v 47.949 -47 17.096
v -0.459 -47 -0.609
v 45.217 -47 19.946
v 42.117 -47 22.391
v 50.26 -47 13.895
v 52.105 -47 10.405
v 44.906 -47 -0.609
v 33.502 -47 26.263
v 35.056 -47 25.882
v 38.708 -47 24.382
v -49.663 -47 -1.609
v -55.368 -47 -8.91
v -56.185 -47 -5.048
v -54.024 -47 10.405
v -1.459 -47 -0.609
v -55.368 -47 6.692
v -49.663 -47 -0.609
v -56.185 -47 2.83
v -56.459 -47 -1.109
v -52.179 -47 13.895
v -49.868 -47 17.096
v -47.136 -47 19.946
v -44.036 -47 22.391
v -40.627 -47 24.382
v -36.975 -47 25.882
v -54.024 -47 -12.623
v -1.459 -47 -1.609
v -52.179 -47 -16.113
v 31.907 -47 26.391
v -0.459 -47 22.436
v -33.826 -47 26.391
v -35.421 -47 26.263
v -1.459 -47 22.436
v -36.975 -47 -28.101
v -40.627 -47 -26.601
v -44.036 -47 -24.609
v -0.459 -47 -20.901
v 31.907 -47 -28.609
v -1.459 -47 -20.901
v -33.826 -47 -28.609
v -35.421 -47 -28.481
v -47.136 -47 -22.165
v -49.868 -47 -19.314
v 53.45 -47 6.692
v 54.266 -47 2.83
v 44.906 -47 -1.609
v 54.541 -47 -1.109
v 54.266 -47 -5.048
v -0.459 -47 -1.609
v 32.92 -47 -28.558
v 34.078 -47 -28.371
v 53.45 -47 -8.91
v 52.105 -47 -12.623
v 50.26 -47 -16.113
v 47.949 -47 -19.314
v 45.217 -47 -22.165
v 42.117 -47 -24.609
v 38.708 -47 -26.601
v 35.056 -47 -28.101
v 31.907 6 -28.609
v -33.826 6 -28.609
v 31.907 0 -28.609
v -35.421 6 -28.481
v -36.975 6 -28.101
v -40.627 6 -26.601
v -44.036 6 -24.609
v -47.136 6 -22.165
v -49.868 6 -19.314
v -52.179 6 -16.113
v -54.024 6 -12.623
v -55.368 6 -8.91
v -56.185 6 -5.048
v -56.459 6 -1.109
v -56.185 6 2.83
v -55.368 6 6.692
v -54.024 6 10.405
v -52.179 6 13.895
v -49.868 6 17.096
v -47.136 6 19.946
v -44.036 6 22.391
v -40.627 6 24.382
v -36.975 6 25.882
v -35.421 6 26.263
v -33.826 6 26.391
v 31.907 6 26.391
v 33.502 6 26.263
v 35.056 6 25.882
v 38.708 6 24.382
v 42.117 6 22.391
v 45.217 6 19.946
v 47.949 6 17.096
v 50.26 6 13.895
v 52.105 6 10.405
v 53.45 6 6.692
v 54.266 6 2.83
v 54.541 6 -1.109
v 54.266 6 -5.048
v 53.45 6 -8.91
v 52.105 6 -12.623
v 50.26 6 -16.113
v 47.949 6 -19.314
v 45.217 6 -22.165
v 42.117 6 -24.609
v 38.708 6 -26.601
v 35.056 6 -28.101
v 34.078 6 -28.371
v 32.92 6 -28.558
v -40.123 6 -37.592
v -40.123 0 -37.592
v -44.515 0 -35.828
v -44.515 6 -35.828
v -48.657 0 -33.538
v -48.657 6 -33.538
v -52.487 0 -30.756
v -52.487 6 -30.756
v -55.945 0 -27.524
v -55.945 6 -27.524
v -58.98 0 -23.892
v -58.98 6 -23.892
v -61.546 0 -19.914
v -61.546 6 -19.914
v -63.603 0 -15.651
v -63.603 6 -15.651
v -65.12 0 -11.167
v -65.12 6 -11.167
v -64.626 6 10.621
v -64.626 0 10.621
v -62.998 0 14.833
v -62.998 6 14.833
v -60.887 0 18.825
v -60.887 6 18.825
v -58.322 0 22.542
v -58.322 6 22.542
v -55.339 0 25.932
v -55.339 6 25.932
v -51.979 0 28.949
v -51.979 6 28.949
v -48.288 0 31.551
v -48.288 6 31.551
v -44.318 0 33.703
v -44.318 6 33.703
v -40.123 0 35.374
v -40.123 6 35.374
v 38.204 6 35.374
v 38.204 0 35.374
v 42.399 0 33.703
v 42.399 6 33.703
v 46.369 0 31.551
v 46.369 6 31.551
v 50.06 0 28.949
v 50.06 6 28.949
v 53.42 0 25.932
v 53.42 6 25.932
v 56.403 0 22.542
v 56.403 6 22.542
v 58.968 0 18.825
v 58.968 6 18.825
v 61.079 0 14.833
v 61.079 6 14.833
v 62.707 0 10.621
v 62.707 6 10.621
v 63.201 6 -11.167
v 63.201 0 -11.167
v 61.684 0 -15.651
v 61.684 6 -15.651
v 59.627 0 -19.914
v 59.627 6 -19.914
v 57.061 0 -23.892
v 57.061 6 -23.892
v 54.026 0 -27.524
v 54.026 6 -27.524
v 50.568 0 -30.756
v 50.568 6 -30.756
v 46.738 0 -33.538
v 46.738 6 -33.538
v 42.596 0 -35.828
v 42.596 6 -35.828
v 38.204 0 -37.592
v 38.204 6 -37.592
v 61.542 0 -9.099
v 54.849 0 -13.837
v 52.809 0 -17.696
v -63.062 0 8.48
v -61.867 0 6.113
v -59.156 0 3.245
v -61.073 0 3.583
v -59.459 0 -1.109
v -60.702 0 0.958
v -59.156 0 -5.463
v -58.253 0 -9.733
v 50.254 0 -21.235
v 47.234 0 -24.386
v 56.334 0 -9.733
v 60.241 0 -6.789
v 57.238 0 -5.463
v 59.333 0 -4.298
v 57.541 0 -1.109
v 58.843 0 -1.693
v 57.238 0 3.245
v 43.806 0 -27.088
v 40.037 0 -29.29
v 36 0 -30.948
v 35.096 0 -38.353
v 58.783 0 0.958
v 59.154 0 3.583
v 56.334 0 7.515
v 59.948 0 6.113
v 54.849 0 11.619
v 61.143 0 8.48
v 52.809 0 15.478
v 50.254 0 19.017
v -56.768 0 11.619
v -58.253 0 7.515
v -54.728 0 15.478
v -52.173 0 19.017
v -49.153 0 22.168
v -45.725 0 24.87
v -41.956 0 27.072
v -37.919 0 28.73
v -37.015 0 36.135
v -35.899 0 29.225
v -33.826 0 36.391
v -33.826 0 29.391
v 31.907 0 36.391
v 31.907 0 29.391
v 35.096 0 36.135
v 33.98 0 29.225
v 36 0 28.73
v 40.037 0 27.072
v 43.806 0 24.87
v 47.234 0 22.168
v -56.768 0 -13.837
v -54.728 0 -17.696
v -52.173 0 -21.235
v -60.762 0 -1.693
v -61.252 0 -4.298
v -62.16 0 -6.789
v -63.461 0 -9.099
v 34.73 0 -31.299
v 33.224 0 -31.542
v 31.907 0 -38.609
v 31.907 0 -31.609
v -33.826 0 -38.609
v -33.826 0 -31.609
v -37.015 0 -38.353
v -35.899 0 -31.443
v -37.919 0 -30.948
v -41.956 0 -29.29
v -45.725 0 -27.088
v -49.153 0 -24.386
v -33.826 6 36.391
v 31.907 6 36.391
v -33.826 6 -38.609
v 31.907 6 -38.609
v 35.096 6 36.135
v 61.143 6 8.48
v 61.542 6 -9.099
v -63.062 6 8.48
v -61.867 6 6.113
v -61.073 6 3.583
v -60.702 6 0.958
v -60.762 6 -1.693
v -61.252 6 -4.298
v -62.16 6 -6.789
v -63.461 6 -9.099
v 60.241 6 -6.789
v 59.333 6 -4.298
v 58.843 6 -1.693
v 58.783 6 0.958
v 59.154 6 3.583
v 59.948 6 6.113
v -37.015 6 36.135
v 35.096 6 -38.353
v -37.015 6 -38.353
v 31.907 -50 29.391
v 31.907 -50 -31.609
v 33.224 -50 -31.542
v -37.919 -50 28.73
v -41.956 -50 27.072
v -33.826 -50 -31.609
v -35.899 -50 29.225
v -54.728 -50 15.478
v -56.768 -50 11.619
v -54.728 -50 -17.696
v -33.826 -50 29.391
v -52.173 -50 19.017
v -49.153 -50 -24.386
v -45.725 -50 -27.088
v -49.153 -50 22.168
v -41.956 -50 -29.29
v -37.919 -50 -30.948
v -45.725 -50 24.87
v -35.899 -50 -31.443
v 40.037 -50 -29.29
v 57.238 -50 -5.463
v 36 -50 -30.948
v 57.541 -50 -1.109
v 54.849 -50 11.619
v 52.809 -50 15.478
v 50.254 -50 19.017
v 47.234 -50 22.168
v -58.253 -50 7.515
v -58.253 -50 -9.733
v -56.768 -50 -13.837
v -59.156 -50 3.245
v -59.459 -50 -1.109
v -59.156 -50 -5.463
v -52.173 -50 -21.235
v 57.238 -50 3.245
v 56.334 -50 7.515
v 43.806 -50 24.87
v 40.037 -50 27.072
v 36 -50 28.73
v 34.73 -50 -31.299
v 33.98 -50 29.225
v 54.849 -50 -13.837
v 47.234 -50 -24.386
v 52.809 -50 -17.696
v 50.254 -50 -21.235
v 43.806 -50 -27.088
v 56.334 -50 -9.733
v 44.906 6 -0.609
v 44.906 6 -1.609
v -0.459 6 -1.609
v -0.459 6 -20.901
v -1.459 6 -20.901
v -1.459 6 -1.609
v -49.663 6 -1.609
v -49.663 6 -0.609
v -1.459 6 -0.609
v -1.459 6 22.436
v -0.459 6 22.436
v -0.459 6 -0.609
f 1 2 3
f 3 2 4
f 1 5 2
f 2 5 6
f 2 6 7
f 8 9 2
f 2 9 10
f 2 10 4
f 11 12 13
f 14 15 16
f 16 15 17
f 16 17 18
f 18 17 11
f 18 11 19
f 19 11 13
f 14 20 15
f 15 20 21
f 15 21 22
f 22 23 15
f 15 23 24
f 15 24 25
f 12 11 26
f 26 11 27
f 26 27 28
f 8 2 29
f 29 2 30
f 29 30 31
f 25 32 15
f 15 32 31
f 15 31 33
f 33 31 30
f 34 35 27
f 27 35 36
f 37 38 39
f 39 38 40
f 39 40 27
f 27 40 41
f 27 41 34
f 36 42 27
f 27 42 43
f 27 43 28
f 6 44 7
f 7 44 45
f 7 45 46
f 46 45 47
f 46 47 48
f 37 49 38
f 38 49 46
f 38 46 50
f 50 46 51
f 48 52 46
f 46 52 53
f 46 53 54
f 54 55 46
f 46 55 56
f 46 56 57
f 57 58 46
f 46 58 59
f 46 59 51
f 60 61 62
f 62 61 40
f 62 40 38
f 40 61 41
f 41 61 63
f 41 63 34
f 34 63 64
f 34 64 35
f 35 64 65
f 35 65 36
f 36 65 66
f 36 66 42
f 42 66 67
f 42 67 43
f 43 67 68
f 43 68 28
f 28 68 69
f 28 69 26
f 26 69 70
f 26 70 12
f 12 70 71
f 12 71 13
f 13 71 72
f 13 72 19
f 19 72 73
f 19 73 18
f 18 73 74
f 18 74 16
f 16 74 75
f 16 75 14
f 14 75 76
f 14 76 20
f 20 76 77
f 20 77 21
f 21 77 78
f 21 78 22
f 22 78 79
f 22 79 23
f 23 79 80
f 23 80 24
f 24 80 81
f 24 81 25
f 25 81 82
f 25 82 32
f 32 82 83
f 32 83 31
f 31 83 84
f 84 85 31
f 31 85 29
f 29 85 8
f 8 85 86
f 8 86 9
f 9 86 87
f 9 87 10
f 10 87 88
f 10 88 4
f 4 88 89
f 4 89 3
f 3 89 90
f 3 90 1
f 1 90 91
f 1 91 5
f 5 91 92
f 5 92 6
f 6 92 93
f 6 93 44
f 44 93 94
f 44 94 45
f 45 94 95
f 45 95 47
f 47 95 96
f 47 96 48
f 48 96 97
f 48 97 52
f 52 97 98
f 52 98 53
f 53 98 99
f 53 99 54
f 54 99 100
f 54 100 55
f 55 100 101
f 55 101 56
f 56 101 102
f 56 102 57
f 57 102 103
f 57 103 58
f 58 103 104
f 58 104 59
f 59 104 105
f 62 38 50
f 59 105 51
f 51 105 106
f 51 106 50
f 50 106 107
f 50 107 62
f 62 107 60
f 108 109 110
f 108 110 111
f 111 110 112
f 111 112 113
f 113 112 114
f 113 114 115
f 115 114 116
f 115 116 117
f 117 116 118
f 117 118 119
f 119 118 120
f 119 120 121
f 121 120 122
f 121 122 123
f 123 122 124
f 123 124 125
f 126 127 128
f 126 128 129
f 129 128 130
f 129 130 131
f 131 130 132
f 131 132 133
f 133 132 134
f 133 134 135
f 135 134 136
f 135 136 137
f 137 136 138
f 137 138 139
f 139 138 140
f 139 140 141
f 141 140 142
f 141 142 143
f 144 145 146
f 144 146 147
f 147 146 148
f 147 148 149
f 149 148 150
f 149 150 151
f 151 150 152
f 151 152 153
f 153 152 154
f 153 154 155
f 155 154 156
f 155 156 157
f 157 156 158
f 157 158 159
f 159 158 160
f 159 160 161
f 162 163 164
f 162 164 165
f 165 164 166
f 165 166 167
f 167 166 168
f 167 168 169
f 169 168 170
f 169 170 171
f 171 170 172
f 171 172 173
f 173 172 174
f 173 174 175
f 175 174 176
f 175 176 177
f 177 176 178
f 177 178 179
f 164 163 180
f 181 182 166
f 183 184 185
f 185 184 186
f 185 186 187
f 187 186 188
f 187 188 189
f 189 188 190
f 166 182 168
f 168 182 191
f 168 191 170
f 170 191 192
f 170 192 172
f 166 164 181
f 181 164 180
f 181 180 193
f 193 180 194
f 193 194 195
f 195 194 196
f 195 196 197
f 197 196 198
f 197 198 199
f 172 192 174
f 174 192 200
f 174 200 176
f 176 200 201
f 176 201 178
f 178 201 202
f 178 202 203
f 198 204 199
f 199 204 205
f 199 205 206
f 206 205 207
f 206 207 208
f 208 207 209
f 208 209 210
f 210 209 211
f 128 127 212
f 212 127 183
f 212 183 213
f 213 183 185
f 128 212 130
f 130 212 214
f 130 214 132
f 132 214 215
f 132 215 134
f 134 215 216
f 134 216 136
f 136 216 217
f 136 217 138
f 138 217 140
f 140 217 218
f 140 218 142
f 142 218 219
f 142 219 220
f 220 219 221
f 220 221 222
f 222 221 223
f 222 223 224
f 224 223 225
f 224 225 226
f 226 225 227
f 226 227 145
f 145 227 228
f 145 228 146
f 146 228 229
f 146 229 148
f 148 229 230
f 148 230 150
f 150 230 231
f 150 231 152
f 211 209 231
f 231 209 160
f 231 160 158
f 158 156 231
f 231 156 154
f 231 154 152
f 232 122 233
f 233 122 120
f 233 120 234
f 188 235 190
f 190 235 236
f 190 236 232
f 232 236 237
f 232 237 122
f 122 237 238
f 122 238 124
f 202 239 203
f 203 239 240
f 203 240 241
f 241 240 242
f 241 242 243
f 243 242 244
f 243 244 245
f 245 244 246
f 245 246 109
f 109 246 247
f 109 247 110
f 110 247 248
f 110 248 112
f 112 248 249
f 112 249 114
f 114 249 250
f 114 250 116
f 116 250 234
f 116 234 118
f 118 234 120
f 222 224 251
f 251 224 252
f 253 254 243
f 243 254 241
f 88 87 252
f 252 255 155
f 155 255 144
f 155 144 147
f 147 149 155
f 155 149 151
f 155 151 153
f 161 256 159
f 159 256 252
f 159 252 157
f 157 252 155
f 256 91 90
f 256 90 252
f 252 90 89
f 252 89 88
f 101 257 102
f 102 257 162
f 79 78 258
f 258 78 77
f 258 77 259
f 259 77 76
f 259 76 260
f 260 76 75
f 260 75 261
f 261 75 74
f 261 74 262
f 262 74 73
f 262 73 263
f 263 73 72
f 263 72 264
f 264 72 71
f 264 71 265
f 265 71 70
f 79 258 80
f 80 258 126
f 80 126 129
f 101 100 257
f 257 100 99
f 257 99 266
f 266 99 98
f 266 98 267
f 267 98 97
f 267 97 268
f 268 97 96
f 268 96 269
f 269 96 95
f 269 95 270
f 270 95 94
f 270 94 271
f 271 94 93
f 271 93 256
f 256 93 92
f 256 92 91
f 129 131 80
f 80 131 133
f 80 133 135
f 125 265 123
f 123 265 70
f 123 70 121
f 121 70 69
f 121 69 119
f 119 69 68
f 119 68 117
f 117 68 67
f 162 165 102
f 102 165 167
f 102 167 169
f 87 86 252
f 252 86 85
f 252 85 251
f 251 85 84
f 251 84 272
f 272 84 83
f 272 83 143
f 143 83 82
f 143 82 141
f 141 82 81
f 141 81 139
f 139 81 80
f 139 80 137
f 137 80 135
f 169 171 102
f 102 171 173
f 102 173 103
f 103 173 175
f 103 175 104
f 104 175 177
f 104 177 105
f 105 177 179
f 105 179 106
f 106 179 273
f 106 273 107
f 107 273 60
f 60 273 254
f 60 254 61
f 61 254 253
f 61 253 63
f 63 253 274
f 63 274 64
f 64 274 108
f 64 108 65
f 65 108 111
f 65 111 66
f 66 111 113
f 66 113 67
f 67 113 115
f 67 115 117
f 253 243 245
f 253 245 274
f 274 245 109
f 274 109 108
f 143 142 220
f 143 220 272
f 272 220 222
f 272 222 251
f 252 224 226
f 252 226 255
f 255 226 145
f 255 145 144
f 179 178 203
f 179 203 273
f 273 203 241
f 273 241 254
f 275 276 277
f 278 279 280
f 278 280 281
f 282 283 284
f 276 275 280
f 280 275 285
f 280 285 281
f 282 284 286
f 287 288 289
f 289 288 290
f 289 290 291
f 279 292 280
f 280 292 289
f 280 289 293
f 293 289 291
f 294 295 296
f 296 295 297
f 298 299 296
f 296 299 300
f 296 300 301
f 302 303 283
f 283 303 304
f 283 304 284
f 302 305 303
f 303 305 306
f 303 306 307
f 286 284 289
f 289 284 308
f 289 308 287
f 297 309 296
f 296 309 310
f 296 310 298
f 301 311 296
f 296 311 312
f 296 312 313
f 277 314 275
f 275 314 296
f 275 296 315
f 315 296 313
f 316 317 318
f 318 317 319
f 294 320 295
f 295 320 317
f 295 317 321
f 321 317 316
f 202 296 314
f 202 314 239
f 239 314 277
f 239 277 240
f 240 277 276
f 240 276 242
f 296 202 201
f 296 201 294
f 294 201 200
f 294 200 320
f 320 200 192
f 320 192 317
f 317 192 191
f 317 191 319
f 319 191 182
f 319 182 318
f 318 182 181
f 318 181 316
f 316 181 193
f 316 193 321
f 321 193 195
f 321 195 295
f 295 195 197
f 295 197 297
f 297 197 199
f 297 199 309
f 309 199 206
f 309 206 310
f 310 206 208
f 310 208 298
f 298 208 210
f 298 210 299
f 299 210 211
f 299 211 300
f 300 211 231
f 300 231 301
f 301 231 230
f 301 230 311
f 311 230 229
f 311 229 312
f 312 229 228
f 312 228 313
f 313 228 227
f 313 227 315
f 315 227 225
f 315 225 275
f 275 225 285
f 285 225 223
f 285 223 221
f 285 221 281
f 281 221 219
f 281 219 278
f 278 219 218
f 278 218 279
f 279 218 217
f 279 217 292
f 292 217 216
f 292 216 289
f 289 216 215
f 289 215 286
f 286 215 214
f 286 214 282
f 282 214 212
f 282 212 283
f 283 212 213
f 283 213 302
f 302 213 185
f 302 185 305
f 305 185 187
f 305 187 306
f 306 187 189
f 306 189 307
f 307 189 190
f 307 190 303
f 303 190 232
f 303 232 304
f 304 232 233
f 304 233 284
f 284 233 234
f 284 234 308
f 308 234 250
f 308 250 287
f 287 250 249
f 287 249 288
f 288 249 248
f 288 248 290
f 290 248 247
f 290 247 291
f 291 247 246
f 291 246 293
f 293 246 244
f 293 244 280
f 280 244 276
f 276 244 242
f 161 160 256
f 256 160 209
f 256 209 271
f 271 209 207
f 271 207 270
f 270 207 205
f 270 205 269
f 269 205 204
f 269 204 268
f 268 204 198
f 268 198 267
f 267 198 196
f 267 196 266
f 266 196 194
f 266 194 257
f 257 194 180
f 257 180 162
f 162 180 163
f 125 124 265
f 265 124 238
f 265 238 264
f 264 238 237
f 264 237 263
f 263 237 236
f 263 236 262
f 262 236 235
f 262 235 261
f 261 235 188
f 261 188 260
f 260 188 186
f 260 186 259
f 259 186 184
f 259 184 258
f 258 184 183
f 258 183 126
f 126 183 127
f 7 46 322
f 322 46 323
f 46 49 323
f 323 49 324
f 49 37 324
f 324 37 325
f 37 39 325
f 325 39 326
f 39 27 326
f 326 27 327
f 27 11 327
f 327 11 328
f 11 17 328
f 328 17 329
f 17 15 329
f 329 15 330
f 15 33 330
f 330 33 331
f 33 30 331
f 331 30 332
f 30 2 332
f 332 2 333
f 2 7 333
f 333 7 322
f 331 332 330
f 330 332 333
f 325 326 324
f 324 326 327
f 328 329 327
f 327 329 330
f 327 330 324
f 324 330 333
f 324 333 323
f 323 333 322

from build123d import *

# Parameters (mm, degrees)
BOSS_EXTRUDE1_DEPTH = 6
FILLET1_R           = 20
SKETCH4_W           = 3
SKETCH4_H           = 50
SKETCH6_R           = 16.245672788
CUT_EXTRUDE1_DEPTH  = 10
BOSS_EXTRUDE2_DEPTH = 3
CUT_EXTRUDE2_DEPTH  = 44
BOSS_EXTRUDE3_DEPTH = 53


with BuildPart() as part:
    # Sketch1 → Boss-Extrude1 (new body)
    with BuildSketch(Plane(origin=(0, 0, 0), x_dir=(1, 0, 0), z_dir=(0, 1, 0))):
        with BuildLine():
            Line((34.540516942, 38.609131748), (-36.459483058, 38.609131748))
            ThreePointArc((-36.459483058, 38.609131748), (-66.459483058, 1.109131748), (-36.459483058, -36.390868252))
            Line((-36.459483058, -36.390868252), (34.540516942, -36.390868252))
            ThreePointArc((34.540516942, -36.390868252), (64.540516942, 1.109131748), (34.540516942, 38.609131748))
        make_face()
    extrude(amount=BOSS_EXTRUDE1_DEPTH)

    # Fillet1
    fillet1_edges = [part.edges().sort_by_distance(p)[0] for p in [
        (-36.459483058, 3, -38.609131748),
        (34.540516942, 3, -38.609131748),
        (34.540516942, 3, 36.390868252),
        (-36.459483058, 3, 36.390868252),
    ]]
    fillet(fillet1_edges, radius=FILLET1_R)

    # Sweep1: sweep along a path in Sketch3
    with BuildLine(Plane.XZ) as sweep1_path:
        Line((31.907446823, 29.390868252), (-33.82641294, 29.390868252))
        ThreePointArc((-33.82641294, 29.390868252), (-35.899239553, 29.224550102), (-37.919027907, 28.729851303))
        ThreePointArc((-37.919027907, 28.729851303), (-59.459483058, -1.109131748), (-37.919027907, -30.948114799))
        ThreePointArc((-37.919027907, -30.948114799), (-35.899239553, -31.442813598), (-33.82641294, -31.609131748))
        Line((-33.82641294, -31.609131748), (31.907446823, -31.609131748))
        ThreePointArc((31.907446823, -31.609131748), (33.980273437, -31.442813598), (36.000061791, -30.948114799))
        ThreePointArc((36.000061791, -30.948114799), (57.540516942, -1.109131748), (36.000061791, 28.729851303))
        ThreePointArc((36.000061791, 28.729851303), (33.980273437, 29.224550102), (31.907446823, 29.390868252))
    # Sketch4 → Sweep1 (sweep)
    with BuildSketch(Plane(origin=(31.907446823, 0, -31.609131748), x_dir=(0, 0, -1), z_dir=(1, 0, 0))):
        with Locations((-1.5, -25)):
            Rectangle(SKETCH4_W, SKETCH4_H)
    sweep(path=sweep1_path.line)

    # Sketch6 → Cut-Extrude1 (cut)
    with BuildSketch(Plane(origin=(0, 0, 0), x_dir=(1, 0, 0), z_dir=(0, 1, 0))):
        with Locations((75, 0)):
            Circle(SKETCH6_R)
        with Locations((-76.918966117, 0)):
            Circle(SKETCH6_R)
    extrude(amount=CUT_EXTRUDE1_DEPTH, mode=Mode.SUBTRACT)

    # Sketch7 → Boss-Extrude2 (add)
    with BuildSketch(Plane.XZ.offset(50)):
        with BuildLine():
            Line((31.907446823, 26.390868252), (-33.82641294, 26.390868252))
            ThreePointArc((-33.82641294, 26.390868252), (-35.42089495, 26.262931214), (-36.974578299, 25.882393676))
            ThreePointArc((-36.974578299, 25.882393676), (-56.459483058, -1.109131748), (-36.974578299, -28.100657171))
            ThreePointArc((-36.974578299, -28.100657171), (-35.42089495, -28.481194709), (-33.82641294, -28.609131748))
            Line((-33.82641294, -28.609131748), (31.907446823, -28.609131748))
            ThreePointArc((31.907446823, -28.609131748), (33.501928834, -28.481194709), (35.055612183, -28.100657171))
            ThreePointArc((35.055612183, -28.100657171), (54.540516942, -1.109131748), (35.055612183, 25.882393676))
            ThreePointArc((35.055612183, 25.882393676), (33.501928834, 26.262931214), (31.907446823, 26.390868252))
        make_face()
    extrude(amount=-BOSS_EXTRUDE2_DEPTH)

    # Sketch9 → Cut-Extrude2 (cut)
    with BuildSketch(Plane.XZ):
        with BuildLine():
            Line((-33.82641294, -28.609131748), (31.907446823, -28.609131748))
            ThreePointArc((31.907446823, -28.609131748), (33.501928834, -28.481194709), (35.055612183, -28.100657171))
            ThreePointArc((35.055612183, -28.100657171), (54.540516942, -1.109131748), (35.055612183, 25.882393676))
            ThreePointArc((35.055612183, 25.882393676), (33.501928834, 26.262931214), (31.907446823, 26.390868252))
            Line((31.907446823, 26.390868252), (-33.82641294, 26.390868252))
            ThreePointArc((-33.82641294, 26.390868252), (-35.42089495, 26.262931214), (-36.974578299, 25.882393676))
            ThreePointArc((-36.974578299, 25.882393676), (-56.459483058, -1.109131748), (-36.974578299, -28.100657171))
            ThreePointArc((-36.974578299, -28.100657171), (-35.42089495, -28.481194709), (-33.82641294, -28.609131748))
        make_face()
    extrude(amount=-CUT_EXTRUDE2_DEPTH, mode=Mode.SUBTRACT)

    # Sketch10 → Boss-Extrude3 (add)
    with BuildSketch(Plane(origin=(0, -47, 0), x_dir=(1, 0, 0), z_dir=(0, 1, 0))):
        Polygon((-0.459483058, 1.609131748), (44.905858694, 1.609131748), (44.905858694, 0.609131748), (-0.459483058, 0.609131748), (-0.459483058, -22.435523008), (-1.459483058, -22.435523008), (-1.459483058, 0.609131748), (-49.663240978, 0.609131748), (-49.663240978, 1.609131748), (-1.459483058, 1.609131748), (-1.459483058, 20.900521065), (-0.459483058, 20.900521065), align=None)
    extrude(amount=BOSS_EXTRUDE3_DEPTH)


solid = part.part
